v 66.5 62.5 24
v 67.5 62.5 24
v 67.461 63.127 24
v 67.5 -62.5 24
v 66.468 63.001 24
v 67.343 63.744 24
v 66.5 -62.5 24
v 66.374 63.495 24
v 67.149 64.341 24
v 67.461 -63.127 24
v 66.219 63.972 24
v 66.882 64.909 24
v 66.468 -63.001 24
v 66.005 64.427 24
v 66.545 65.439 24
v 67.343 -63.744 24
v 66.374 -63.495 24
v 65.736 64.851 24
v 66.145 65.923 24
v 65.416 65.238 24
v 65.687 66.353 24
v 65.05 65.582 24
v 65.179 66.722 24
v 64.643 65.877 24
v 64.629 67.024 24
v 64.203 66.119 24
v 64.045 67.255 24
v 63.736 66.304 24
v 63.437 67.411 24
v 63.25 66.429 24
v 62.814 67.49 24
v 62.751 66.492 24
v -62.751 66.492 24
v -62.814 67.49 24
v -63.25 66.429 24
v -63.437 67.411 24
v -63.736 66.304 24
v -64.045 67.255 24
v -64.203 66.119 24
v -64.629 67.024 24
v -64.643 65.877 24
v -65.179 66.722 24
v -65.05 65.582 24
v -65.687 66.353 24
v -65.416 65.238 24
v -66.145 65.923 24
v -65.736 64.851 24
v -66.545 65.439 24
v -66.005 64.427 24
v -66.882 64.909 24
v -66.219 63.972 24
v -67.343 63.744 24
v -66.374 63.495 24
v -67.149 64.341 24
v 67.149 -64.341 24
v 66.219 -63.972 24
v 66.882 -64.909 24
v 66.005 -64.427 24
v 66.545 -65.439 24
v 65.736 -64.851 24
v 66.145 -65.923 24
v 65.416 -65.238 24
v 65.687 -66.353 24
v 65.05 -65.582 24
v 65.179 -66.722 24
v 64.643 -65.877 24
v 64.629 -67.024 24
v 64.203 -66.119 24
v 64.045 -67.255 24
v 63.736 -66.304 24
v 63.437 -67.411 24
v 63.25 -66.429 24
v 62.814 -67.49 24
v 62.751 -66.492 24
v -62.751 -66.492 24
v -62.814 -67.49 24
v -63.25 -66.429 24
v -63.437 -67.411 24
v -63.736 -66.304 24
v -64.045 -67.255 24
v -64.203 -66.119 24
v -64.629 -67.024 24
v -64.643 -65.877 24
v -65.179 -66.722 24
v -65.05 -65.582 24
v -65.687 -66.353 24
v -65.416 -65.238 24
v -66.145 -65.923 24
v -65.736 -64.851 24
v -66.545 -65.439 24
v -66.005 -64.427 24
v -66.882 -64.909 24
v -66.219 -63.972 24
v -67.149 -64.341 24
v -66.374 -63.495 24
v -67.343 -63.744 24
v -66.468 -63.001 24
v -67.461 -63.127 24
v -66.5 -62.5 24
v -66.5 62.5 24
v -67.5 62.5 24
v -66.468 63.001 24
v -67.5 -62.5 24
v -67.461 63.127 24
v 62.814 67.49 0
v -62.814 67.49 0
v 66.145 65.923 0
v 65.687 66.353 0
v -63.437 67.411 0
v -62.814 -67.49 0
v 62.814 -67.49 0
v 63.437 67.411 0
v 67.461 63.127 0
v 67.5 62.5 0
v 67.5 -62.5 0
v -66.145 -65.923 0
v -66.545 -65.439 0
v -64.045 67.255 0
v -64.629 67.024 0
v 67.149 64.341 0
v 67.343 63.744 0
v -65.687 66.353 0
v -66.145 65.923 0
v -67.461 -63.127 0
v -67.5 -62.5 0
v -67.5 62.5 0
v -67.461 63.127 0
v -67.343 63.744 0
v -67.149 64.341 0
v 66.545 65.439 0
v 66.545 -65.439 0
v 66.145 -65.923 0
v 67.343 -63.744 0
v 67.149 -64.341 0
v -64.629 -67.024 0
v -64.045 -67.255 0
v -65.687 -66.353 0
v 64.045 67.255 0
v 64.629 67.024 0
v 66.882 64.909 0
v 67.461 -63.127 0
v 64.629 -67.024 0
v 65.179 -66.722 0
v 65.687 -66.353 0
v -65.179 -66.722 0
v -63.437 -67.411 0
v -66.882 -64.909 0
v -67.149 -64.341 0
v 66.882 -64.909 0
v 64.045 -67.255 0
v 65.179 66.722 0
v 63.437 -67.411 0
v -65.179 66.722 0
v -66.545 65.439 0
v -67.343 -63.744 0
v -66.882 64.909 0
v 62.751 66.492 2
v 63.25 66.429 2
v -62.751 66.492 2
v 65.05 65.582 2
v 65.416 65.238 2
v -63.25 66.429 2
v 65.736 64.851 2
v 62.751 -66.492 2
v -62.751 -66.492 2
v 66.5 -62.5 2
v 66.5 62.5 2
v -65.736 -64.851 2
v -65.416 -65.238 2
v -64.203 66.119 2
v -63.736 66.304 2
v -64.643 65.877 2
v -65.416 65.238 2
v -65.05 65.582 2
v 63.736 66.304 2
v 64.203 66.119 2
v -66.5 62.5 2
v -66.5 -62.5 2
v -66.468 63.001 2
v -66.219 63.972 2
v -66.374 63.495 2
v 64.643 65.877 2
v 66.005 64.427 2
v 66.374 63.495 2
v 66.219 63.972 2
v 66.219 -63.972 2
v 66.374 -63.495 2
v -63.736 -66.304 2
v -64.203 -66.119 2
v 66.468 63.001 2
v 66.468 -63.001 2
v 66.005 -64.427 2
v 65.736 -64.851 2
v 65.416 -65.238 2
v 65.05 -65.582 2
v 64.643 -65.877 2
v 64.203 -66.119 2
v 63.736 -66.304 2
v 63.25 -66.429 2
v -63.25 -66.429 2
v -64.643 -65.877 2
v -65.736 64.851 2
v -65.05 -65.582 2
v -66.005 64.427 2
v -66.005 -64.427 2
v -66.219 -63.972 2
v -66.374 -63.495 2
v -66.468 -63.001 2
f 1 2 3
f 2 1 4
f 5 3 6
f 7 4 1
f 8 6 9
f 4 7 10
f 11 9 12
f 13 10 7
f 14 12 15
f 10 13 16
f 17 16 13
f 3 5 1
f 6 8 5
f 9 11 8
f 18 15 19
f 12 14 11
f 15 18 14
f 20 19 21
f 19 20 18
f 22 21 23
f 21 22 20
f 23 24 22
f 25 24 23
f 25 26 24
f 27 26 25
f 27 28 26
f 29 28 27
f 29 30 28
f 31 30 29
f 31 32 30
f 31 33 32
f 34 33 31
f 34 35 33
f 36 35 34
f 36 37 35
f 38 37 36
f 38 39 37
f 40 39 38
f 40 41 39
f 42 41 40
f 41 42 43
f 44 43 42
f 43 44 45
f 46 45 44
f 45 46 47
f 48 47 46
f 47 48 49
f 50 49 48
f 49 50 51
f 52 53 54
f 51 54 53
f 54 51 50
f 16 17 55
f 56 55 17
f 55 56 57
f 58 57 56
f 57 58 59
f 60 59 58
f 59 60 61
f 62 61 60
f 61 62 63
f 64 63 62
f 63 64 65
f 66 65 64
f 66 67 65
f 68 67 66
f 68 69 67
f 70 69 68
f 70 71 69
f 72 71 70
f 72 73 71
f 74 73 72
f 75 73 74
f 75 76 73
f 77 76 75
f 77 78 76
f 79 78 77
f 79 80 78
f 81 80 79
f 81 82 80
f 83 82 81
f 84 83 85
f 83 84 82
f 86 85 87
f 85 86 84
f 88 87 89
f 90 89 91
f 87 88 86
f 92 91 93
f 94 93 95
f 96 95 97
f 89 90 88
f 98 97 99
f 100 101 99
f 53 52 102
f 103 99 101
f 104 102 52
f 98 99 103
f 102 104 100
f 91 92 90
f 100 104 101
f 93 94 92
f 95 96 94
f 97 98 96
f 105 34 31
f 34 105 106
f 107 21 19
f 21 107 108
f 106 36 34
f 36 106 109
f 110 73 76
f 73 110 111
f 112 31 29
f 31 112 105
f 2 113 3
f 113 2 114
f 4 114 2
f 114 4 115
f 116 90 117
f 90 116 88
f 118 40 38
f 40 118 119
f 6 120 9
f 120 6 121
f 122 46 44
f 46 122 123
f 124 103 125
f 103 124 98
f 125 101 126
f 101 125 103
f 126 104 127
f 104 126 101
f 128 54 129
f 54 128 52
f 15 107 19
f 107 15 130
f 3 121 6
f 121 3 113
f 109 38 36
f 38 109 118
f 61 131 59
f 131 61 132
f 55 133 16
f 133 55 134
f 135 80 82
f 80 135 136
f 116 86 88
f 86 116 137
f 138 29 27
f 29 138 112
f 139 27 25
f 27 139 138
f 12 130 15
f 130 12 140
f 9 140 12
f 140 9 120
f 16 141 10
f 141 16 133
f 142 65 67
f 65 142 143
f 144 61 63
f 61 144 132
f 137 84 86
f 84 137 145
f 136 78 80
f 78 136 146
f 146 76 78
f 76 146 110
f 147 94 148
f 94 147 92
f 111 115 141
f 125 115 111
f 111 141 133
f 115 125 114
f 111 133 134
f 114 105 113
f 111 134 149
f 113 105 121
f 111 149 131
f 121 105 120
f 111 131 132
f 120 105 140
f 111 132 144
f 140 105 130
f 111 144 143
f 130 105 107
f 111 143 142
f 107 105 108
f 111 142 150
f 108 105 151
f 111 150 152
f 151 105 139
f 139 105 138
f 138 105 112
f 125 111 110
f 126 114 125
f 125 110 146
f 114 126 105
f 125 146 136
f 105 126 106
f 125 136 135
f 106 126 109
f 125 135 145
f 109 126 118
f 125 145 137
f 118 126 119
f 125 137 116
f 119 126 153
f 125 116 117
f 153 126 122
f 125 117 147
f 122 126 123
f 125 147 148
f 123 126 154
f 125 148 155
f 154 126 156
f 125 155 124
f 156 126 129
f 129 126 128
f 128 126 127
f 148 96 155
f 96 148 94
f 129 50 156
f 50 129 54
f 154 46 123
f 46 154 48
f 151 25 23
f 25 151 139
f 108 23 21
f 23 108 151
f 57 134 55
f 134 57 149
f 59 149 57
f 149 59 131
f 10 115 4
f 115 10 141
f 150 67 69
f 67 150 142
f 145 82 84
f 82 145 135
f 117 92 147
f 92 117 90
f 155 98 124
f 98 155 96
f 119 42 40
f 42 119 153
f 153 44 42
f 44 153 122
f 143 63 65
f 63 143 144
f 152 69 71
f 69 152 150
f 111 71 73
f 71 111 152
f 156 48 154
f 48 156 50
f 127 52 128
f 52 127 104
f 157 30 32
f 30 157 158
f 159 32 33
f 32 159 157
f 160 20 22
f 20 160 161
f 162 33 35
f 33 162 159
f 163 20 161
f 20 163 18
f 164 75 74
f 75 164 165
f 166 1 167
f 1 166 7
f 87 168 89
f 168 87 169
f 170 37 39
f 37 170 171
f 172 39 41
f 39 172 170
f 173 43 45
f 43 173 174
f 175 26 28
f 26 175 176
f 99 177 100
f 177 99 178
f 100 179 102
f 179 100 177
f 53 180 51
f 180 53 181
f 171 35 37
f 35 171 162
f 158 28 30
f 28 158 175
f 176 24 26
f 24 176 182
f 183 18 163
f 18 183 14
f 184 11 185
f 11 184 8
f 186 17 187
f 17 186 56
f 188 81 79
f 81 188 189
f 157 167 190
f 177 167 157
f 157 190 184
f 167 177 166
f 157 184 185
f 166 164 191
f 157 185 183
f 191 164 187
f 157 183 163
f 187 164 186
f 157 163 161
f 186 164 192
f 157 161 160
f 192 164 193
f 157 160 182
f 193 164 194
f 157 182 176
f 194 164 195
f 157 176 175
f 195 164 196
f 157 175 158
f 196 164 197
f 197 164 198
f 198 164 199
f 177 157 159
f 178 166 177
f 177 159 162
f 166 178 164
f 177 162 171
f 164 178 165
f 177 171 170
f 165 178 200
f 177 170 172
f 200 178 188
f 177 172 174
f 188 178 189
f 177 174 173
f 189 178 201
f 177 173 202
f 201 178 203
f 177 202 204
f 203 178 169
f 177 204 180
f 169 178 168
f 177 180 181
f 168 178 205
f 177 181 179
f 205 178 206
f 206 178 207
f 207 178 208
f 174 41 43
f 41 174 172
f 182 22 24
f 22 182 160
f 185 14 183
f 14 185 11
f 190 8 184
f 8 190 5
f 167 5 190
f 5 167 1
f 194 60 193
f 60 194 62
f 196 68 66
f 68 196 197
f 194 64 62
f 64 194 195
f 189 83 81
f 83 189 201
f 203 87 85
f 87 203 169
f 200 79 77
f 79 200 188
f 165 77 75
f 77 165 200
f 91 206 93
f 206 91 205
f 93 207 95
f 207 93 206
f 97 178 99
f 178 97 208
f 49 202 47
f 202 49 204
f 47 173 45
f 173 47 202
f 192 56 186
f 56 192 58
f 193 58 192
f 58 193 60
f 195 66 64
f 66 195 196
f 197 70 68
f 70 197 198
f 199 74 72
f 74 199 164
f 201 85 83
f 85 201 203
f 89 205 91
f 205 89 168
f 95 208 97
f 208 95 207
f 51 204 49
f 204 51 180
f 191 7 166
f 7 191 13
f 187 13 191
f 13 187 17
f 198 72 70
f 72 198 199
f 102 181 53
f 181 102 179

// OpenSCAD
$fn = 50;


difference() {
	union() {
		hull() {
			translate(v = [-62.5000000000, 62.5000000000, 0]) {
				cylinder(h = 24, r = 5);
			}
			translate(v = [62.5000000000, 62.5000000000, 0]) {
				cylinder(h = 24, r = 5);
			}
			translate(v = [-62.5000000000, -62.5000000000, 0]) {
				cylinder(h = 24, r = 5);
			}
			translate(v = [62.5000000000, -62.5000000000, 0]) {
				cylinder(h = 24, r = 5);
			}
		}
	}
	union() {
		translate(v = [0, 0, 2]) {
			hull() {
				translate(v = [-62.5000000000, 62.5000000000, 0]) {
					cylinder(h = 22, r = 4);
				}
				translate(v = [62.5000000000, 62.5000000000, 0]) {
					cylinder(h = 22, r = 4);
				}
				translate(v = [-62.5000000000, -62.5000000000, 0]) {
					cylinder(h = 22, r = 4);
				}
				translate(v = [62.5000000000, -62.5000000000, 0]) {
					cylinder(h = 22, r = 4);
				}
			}
		}
	}
}
